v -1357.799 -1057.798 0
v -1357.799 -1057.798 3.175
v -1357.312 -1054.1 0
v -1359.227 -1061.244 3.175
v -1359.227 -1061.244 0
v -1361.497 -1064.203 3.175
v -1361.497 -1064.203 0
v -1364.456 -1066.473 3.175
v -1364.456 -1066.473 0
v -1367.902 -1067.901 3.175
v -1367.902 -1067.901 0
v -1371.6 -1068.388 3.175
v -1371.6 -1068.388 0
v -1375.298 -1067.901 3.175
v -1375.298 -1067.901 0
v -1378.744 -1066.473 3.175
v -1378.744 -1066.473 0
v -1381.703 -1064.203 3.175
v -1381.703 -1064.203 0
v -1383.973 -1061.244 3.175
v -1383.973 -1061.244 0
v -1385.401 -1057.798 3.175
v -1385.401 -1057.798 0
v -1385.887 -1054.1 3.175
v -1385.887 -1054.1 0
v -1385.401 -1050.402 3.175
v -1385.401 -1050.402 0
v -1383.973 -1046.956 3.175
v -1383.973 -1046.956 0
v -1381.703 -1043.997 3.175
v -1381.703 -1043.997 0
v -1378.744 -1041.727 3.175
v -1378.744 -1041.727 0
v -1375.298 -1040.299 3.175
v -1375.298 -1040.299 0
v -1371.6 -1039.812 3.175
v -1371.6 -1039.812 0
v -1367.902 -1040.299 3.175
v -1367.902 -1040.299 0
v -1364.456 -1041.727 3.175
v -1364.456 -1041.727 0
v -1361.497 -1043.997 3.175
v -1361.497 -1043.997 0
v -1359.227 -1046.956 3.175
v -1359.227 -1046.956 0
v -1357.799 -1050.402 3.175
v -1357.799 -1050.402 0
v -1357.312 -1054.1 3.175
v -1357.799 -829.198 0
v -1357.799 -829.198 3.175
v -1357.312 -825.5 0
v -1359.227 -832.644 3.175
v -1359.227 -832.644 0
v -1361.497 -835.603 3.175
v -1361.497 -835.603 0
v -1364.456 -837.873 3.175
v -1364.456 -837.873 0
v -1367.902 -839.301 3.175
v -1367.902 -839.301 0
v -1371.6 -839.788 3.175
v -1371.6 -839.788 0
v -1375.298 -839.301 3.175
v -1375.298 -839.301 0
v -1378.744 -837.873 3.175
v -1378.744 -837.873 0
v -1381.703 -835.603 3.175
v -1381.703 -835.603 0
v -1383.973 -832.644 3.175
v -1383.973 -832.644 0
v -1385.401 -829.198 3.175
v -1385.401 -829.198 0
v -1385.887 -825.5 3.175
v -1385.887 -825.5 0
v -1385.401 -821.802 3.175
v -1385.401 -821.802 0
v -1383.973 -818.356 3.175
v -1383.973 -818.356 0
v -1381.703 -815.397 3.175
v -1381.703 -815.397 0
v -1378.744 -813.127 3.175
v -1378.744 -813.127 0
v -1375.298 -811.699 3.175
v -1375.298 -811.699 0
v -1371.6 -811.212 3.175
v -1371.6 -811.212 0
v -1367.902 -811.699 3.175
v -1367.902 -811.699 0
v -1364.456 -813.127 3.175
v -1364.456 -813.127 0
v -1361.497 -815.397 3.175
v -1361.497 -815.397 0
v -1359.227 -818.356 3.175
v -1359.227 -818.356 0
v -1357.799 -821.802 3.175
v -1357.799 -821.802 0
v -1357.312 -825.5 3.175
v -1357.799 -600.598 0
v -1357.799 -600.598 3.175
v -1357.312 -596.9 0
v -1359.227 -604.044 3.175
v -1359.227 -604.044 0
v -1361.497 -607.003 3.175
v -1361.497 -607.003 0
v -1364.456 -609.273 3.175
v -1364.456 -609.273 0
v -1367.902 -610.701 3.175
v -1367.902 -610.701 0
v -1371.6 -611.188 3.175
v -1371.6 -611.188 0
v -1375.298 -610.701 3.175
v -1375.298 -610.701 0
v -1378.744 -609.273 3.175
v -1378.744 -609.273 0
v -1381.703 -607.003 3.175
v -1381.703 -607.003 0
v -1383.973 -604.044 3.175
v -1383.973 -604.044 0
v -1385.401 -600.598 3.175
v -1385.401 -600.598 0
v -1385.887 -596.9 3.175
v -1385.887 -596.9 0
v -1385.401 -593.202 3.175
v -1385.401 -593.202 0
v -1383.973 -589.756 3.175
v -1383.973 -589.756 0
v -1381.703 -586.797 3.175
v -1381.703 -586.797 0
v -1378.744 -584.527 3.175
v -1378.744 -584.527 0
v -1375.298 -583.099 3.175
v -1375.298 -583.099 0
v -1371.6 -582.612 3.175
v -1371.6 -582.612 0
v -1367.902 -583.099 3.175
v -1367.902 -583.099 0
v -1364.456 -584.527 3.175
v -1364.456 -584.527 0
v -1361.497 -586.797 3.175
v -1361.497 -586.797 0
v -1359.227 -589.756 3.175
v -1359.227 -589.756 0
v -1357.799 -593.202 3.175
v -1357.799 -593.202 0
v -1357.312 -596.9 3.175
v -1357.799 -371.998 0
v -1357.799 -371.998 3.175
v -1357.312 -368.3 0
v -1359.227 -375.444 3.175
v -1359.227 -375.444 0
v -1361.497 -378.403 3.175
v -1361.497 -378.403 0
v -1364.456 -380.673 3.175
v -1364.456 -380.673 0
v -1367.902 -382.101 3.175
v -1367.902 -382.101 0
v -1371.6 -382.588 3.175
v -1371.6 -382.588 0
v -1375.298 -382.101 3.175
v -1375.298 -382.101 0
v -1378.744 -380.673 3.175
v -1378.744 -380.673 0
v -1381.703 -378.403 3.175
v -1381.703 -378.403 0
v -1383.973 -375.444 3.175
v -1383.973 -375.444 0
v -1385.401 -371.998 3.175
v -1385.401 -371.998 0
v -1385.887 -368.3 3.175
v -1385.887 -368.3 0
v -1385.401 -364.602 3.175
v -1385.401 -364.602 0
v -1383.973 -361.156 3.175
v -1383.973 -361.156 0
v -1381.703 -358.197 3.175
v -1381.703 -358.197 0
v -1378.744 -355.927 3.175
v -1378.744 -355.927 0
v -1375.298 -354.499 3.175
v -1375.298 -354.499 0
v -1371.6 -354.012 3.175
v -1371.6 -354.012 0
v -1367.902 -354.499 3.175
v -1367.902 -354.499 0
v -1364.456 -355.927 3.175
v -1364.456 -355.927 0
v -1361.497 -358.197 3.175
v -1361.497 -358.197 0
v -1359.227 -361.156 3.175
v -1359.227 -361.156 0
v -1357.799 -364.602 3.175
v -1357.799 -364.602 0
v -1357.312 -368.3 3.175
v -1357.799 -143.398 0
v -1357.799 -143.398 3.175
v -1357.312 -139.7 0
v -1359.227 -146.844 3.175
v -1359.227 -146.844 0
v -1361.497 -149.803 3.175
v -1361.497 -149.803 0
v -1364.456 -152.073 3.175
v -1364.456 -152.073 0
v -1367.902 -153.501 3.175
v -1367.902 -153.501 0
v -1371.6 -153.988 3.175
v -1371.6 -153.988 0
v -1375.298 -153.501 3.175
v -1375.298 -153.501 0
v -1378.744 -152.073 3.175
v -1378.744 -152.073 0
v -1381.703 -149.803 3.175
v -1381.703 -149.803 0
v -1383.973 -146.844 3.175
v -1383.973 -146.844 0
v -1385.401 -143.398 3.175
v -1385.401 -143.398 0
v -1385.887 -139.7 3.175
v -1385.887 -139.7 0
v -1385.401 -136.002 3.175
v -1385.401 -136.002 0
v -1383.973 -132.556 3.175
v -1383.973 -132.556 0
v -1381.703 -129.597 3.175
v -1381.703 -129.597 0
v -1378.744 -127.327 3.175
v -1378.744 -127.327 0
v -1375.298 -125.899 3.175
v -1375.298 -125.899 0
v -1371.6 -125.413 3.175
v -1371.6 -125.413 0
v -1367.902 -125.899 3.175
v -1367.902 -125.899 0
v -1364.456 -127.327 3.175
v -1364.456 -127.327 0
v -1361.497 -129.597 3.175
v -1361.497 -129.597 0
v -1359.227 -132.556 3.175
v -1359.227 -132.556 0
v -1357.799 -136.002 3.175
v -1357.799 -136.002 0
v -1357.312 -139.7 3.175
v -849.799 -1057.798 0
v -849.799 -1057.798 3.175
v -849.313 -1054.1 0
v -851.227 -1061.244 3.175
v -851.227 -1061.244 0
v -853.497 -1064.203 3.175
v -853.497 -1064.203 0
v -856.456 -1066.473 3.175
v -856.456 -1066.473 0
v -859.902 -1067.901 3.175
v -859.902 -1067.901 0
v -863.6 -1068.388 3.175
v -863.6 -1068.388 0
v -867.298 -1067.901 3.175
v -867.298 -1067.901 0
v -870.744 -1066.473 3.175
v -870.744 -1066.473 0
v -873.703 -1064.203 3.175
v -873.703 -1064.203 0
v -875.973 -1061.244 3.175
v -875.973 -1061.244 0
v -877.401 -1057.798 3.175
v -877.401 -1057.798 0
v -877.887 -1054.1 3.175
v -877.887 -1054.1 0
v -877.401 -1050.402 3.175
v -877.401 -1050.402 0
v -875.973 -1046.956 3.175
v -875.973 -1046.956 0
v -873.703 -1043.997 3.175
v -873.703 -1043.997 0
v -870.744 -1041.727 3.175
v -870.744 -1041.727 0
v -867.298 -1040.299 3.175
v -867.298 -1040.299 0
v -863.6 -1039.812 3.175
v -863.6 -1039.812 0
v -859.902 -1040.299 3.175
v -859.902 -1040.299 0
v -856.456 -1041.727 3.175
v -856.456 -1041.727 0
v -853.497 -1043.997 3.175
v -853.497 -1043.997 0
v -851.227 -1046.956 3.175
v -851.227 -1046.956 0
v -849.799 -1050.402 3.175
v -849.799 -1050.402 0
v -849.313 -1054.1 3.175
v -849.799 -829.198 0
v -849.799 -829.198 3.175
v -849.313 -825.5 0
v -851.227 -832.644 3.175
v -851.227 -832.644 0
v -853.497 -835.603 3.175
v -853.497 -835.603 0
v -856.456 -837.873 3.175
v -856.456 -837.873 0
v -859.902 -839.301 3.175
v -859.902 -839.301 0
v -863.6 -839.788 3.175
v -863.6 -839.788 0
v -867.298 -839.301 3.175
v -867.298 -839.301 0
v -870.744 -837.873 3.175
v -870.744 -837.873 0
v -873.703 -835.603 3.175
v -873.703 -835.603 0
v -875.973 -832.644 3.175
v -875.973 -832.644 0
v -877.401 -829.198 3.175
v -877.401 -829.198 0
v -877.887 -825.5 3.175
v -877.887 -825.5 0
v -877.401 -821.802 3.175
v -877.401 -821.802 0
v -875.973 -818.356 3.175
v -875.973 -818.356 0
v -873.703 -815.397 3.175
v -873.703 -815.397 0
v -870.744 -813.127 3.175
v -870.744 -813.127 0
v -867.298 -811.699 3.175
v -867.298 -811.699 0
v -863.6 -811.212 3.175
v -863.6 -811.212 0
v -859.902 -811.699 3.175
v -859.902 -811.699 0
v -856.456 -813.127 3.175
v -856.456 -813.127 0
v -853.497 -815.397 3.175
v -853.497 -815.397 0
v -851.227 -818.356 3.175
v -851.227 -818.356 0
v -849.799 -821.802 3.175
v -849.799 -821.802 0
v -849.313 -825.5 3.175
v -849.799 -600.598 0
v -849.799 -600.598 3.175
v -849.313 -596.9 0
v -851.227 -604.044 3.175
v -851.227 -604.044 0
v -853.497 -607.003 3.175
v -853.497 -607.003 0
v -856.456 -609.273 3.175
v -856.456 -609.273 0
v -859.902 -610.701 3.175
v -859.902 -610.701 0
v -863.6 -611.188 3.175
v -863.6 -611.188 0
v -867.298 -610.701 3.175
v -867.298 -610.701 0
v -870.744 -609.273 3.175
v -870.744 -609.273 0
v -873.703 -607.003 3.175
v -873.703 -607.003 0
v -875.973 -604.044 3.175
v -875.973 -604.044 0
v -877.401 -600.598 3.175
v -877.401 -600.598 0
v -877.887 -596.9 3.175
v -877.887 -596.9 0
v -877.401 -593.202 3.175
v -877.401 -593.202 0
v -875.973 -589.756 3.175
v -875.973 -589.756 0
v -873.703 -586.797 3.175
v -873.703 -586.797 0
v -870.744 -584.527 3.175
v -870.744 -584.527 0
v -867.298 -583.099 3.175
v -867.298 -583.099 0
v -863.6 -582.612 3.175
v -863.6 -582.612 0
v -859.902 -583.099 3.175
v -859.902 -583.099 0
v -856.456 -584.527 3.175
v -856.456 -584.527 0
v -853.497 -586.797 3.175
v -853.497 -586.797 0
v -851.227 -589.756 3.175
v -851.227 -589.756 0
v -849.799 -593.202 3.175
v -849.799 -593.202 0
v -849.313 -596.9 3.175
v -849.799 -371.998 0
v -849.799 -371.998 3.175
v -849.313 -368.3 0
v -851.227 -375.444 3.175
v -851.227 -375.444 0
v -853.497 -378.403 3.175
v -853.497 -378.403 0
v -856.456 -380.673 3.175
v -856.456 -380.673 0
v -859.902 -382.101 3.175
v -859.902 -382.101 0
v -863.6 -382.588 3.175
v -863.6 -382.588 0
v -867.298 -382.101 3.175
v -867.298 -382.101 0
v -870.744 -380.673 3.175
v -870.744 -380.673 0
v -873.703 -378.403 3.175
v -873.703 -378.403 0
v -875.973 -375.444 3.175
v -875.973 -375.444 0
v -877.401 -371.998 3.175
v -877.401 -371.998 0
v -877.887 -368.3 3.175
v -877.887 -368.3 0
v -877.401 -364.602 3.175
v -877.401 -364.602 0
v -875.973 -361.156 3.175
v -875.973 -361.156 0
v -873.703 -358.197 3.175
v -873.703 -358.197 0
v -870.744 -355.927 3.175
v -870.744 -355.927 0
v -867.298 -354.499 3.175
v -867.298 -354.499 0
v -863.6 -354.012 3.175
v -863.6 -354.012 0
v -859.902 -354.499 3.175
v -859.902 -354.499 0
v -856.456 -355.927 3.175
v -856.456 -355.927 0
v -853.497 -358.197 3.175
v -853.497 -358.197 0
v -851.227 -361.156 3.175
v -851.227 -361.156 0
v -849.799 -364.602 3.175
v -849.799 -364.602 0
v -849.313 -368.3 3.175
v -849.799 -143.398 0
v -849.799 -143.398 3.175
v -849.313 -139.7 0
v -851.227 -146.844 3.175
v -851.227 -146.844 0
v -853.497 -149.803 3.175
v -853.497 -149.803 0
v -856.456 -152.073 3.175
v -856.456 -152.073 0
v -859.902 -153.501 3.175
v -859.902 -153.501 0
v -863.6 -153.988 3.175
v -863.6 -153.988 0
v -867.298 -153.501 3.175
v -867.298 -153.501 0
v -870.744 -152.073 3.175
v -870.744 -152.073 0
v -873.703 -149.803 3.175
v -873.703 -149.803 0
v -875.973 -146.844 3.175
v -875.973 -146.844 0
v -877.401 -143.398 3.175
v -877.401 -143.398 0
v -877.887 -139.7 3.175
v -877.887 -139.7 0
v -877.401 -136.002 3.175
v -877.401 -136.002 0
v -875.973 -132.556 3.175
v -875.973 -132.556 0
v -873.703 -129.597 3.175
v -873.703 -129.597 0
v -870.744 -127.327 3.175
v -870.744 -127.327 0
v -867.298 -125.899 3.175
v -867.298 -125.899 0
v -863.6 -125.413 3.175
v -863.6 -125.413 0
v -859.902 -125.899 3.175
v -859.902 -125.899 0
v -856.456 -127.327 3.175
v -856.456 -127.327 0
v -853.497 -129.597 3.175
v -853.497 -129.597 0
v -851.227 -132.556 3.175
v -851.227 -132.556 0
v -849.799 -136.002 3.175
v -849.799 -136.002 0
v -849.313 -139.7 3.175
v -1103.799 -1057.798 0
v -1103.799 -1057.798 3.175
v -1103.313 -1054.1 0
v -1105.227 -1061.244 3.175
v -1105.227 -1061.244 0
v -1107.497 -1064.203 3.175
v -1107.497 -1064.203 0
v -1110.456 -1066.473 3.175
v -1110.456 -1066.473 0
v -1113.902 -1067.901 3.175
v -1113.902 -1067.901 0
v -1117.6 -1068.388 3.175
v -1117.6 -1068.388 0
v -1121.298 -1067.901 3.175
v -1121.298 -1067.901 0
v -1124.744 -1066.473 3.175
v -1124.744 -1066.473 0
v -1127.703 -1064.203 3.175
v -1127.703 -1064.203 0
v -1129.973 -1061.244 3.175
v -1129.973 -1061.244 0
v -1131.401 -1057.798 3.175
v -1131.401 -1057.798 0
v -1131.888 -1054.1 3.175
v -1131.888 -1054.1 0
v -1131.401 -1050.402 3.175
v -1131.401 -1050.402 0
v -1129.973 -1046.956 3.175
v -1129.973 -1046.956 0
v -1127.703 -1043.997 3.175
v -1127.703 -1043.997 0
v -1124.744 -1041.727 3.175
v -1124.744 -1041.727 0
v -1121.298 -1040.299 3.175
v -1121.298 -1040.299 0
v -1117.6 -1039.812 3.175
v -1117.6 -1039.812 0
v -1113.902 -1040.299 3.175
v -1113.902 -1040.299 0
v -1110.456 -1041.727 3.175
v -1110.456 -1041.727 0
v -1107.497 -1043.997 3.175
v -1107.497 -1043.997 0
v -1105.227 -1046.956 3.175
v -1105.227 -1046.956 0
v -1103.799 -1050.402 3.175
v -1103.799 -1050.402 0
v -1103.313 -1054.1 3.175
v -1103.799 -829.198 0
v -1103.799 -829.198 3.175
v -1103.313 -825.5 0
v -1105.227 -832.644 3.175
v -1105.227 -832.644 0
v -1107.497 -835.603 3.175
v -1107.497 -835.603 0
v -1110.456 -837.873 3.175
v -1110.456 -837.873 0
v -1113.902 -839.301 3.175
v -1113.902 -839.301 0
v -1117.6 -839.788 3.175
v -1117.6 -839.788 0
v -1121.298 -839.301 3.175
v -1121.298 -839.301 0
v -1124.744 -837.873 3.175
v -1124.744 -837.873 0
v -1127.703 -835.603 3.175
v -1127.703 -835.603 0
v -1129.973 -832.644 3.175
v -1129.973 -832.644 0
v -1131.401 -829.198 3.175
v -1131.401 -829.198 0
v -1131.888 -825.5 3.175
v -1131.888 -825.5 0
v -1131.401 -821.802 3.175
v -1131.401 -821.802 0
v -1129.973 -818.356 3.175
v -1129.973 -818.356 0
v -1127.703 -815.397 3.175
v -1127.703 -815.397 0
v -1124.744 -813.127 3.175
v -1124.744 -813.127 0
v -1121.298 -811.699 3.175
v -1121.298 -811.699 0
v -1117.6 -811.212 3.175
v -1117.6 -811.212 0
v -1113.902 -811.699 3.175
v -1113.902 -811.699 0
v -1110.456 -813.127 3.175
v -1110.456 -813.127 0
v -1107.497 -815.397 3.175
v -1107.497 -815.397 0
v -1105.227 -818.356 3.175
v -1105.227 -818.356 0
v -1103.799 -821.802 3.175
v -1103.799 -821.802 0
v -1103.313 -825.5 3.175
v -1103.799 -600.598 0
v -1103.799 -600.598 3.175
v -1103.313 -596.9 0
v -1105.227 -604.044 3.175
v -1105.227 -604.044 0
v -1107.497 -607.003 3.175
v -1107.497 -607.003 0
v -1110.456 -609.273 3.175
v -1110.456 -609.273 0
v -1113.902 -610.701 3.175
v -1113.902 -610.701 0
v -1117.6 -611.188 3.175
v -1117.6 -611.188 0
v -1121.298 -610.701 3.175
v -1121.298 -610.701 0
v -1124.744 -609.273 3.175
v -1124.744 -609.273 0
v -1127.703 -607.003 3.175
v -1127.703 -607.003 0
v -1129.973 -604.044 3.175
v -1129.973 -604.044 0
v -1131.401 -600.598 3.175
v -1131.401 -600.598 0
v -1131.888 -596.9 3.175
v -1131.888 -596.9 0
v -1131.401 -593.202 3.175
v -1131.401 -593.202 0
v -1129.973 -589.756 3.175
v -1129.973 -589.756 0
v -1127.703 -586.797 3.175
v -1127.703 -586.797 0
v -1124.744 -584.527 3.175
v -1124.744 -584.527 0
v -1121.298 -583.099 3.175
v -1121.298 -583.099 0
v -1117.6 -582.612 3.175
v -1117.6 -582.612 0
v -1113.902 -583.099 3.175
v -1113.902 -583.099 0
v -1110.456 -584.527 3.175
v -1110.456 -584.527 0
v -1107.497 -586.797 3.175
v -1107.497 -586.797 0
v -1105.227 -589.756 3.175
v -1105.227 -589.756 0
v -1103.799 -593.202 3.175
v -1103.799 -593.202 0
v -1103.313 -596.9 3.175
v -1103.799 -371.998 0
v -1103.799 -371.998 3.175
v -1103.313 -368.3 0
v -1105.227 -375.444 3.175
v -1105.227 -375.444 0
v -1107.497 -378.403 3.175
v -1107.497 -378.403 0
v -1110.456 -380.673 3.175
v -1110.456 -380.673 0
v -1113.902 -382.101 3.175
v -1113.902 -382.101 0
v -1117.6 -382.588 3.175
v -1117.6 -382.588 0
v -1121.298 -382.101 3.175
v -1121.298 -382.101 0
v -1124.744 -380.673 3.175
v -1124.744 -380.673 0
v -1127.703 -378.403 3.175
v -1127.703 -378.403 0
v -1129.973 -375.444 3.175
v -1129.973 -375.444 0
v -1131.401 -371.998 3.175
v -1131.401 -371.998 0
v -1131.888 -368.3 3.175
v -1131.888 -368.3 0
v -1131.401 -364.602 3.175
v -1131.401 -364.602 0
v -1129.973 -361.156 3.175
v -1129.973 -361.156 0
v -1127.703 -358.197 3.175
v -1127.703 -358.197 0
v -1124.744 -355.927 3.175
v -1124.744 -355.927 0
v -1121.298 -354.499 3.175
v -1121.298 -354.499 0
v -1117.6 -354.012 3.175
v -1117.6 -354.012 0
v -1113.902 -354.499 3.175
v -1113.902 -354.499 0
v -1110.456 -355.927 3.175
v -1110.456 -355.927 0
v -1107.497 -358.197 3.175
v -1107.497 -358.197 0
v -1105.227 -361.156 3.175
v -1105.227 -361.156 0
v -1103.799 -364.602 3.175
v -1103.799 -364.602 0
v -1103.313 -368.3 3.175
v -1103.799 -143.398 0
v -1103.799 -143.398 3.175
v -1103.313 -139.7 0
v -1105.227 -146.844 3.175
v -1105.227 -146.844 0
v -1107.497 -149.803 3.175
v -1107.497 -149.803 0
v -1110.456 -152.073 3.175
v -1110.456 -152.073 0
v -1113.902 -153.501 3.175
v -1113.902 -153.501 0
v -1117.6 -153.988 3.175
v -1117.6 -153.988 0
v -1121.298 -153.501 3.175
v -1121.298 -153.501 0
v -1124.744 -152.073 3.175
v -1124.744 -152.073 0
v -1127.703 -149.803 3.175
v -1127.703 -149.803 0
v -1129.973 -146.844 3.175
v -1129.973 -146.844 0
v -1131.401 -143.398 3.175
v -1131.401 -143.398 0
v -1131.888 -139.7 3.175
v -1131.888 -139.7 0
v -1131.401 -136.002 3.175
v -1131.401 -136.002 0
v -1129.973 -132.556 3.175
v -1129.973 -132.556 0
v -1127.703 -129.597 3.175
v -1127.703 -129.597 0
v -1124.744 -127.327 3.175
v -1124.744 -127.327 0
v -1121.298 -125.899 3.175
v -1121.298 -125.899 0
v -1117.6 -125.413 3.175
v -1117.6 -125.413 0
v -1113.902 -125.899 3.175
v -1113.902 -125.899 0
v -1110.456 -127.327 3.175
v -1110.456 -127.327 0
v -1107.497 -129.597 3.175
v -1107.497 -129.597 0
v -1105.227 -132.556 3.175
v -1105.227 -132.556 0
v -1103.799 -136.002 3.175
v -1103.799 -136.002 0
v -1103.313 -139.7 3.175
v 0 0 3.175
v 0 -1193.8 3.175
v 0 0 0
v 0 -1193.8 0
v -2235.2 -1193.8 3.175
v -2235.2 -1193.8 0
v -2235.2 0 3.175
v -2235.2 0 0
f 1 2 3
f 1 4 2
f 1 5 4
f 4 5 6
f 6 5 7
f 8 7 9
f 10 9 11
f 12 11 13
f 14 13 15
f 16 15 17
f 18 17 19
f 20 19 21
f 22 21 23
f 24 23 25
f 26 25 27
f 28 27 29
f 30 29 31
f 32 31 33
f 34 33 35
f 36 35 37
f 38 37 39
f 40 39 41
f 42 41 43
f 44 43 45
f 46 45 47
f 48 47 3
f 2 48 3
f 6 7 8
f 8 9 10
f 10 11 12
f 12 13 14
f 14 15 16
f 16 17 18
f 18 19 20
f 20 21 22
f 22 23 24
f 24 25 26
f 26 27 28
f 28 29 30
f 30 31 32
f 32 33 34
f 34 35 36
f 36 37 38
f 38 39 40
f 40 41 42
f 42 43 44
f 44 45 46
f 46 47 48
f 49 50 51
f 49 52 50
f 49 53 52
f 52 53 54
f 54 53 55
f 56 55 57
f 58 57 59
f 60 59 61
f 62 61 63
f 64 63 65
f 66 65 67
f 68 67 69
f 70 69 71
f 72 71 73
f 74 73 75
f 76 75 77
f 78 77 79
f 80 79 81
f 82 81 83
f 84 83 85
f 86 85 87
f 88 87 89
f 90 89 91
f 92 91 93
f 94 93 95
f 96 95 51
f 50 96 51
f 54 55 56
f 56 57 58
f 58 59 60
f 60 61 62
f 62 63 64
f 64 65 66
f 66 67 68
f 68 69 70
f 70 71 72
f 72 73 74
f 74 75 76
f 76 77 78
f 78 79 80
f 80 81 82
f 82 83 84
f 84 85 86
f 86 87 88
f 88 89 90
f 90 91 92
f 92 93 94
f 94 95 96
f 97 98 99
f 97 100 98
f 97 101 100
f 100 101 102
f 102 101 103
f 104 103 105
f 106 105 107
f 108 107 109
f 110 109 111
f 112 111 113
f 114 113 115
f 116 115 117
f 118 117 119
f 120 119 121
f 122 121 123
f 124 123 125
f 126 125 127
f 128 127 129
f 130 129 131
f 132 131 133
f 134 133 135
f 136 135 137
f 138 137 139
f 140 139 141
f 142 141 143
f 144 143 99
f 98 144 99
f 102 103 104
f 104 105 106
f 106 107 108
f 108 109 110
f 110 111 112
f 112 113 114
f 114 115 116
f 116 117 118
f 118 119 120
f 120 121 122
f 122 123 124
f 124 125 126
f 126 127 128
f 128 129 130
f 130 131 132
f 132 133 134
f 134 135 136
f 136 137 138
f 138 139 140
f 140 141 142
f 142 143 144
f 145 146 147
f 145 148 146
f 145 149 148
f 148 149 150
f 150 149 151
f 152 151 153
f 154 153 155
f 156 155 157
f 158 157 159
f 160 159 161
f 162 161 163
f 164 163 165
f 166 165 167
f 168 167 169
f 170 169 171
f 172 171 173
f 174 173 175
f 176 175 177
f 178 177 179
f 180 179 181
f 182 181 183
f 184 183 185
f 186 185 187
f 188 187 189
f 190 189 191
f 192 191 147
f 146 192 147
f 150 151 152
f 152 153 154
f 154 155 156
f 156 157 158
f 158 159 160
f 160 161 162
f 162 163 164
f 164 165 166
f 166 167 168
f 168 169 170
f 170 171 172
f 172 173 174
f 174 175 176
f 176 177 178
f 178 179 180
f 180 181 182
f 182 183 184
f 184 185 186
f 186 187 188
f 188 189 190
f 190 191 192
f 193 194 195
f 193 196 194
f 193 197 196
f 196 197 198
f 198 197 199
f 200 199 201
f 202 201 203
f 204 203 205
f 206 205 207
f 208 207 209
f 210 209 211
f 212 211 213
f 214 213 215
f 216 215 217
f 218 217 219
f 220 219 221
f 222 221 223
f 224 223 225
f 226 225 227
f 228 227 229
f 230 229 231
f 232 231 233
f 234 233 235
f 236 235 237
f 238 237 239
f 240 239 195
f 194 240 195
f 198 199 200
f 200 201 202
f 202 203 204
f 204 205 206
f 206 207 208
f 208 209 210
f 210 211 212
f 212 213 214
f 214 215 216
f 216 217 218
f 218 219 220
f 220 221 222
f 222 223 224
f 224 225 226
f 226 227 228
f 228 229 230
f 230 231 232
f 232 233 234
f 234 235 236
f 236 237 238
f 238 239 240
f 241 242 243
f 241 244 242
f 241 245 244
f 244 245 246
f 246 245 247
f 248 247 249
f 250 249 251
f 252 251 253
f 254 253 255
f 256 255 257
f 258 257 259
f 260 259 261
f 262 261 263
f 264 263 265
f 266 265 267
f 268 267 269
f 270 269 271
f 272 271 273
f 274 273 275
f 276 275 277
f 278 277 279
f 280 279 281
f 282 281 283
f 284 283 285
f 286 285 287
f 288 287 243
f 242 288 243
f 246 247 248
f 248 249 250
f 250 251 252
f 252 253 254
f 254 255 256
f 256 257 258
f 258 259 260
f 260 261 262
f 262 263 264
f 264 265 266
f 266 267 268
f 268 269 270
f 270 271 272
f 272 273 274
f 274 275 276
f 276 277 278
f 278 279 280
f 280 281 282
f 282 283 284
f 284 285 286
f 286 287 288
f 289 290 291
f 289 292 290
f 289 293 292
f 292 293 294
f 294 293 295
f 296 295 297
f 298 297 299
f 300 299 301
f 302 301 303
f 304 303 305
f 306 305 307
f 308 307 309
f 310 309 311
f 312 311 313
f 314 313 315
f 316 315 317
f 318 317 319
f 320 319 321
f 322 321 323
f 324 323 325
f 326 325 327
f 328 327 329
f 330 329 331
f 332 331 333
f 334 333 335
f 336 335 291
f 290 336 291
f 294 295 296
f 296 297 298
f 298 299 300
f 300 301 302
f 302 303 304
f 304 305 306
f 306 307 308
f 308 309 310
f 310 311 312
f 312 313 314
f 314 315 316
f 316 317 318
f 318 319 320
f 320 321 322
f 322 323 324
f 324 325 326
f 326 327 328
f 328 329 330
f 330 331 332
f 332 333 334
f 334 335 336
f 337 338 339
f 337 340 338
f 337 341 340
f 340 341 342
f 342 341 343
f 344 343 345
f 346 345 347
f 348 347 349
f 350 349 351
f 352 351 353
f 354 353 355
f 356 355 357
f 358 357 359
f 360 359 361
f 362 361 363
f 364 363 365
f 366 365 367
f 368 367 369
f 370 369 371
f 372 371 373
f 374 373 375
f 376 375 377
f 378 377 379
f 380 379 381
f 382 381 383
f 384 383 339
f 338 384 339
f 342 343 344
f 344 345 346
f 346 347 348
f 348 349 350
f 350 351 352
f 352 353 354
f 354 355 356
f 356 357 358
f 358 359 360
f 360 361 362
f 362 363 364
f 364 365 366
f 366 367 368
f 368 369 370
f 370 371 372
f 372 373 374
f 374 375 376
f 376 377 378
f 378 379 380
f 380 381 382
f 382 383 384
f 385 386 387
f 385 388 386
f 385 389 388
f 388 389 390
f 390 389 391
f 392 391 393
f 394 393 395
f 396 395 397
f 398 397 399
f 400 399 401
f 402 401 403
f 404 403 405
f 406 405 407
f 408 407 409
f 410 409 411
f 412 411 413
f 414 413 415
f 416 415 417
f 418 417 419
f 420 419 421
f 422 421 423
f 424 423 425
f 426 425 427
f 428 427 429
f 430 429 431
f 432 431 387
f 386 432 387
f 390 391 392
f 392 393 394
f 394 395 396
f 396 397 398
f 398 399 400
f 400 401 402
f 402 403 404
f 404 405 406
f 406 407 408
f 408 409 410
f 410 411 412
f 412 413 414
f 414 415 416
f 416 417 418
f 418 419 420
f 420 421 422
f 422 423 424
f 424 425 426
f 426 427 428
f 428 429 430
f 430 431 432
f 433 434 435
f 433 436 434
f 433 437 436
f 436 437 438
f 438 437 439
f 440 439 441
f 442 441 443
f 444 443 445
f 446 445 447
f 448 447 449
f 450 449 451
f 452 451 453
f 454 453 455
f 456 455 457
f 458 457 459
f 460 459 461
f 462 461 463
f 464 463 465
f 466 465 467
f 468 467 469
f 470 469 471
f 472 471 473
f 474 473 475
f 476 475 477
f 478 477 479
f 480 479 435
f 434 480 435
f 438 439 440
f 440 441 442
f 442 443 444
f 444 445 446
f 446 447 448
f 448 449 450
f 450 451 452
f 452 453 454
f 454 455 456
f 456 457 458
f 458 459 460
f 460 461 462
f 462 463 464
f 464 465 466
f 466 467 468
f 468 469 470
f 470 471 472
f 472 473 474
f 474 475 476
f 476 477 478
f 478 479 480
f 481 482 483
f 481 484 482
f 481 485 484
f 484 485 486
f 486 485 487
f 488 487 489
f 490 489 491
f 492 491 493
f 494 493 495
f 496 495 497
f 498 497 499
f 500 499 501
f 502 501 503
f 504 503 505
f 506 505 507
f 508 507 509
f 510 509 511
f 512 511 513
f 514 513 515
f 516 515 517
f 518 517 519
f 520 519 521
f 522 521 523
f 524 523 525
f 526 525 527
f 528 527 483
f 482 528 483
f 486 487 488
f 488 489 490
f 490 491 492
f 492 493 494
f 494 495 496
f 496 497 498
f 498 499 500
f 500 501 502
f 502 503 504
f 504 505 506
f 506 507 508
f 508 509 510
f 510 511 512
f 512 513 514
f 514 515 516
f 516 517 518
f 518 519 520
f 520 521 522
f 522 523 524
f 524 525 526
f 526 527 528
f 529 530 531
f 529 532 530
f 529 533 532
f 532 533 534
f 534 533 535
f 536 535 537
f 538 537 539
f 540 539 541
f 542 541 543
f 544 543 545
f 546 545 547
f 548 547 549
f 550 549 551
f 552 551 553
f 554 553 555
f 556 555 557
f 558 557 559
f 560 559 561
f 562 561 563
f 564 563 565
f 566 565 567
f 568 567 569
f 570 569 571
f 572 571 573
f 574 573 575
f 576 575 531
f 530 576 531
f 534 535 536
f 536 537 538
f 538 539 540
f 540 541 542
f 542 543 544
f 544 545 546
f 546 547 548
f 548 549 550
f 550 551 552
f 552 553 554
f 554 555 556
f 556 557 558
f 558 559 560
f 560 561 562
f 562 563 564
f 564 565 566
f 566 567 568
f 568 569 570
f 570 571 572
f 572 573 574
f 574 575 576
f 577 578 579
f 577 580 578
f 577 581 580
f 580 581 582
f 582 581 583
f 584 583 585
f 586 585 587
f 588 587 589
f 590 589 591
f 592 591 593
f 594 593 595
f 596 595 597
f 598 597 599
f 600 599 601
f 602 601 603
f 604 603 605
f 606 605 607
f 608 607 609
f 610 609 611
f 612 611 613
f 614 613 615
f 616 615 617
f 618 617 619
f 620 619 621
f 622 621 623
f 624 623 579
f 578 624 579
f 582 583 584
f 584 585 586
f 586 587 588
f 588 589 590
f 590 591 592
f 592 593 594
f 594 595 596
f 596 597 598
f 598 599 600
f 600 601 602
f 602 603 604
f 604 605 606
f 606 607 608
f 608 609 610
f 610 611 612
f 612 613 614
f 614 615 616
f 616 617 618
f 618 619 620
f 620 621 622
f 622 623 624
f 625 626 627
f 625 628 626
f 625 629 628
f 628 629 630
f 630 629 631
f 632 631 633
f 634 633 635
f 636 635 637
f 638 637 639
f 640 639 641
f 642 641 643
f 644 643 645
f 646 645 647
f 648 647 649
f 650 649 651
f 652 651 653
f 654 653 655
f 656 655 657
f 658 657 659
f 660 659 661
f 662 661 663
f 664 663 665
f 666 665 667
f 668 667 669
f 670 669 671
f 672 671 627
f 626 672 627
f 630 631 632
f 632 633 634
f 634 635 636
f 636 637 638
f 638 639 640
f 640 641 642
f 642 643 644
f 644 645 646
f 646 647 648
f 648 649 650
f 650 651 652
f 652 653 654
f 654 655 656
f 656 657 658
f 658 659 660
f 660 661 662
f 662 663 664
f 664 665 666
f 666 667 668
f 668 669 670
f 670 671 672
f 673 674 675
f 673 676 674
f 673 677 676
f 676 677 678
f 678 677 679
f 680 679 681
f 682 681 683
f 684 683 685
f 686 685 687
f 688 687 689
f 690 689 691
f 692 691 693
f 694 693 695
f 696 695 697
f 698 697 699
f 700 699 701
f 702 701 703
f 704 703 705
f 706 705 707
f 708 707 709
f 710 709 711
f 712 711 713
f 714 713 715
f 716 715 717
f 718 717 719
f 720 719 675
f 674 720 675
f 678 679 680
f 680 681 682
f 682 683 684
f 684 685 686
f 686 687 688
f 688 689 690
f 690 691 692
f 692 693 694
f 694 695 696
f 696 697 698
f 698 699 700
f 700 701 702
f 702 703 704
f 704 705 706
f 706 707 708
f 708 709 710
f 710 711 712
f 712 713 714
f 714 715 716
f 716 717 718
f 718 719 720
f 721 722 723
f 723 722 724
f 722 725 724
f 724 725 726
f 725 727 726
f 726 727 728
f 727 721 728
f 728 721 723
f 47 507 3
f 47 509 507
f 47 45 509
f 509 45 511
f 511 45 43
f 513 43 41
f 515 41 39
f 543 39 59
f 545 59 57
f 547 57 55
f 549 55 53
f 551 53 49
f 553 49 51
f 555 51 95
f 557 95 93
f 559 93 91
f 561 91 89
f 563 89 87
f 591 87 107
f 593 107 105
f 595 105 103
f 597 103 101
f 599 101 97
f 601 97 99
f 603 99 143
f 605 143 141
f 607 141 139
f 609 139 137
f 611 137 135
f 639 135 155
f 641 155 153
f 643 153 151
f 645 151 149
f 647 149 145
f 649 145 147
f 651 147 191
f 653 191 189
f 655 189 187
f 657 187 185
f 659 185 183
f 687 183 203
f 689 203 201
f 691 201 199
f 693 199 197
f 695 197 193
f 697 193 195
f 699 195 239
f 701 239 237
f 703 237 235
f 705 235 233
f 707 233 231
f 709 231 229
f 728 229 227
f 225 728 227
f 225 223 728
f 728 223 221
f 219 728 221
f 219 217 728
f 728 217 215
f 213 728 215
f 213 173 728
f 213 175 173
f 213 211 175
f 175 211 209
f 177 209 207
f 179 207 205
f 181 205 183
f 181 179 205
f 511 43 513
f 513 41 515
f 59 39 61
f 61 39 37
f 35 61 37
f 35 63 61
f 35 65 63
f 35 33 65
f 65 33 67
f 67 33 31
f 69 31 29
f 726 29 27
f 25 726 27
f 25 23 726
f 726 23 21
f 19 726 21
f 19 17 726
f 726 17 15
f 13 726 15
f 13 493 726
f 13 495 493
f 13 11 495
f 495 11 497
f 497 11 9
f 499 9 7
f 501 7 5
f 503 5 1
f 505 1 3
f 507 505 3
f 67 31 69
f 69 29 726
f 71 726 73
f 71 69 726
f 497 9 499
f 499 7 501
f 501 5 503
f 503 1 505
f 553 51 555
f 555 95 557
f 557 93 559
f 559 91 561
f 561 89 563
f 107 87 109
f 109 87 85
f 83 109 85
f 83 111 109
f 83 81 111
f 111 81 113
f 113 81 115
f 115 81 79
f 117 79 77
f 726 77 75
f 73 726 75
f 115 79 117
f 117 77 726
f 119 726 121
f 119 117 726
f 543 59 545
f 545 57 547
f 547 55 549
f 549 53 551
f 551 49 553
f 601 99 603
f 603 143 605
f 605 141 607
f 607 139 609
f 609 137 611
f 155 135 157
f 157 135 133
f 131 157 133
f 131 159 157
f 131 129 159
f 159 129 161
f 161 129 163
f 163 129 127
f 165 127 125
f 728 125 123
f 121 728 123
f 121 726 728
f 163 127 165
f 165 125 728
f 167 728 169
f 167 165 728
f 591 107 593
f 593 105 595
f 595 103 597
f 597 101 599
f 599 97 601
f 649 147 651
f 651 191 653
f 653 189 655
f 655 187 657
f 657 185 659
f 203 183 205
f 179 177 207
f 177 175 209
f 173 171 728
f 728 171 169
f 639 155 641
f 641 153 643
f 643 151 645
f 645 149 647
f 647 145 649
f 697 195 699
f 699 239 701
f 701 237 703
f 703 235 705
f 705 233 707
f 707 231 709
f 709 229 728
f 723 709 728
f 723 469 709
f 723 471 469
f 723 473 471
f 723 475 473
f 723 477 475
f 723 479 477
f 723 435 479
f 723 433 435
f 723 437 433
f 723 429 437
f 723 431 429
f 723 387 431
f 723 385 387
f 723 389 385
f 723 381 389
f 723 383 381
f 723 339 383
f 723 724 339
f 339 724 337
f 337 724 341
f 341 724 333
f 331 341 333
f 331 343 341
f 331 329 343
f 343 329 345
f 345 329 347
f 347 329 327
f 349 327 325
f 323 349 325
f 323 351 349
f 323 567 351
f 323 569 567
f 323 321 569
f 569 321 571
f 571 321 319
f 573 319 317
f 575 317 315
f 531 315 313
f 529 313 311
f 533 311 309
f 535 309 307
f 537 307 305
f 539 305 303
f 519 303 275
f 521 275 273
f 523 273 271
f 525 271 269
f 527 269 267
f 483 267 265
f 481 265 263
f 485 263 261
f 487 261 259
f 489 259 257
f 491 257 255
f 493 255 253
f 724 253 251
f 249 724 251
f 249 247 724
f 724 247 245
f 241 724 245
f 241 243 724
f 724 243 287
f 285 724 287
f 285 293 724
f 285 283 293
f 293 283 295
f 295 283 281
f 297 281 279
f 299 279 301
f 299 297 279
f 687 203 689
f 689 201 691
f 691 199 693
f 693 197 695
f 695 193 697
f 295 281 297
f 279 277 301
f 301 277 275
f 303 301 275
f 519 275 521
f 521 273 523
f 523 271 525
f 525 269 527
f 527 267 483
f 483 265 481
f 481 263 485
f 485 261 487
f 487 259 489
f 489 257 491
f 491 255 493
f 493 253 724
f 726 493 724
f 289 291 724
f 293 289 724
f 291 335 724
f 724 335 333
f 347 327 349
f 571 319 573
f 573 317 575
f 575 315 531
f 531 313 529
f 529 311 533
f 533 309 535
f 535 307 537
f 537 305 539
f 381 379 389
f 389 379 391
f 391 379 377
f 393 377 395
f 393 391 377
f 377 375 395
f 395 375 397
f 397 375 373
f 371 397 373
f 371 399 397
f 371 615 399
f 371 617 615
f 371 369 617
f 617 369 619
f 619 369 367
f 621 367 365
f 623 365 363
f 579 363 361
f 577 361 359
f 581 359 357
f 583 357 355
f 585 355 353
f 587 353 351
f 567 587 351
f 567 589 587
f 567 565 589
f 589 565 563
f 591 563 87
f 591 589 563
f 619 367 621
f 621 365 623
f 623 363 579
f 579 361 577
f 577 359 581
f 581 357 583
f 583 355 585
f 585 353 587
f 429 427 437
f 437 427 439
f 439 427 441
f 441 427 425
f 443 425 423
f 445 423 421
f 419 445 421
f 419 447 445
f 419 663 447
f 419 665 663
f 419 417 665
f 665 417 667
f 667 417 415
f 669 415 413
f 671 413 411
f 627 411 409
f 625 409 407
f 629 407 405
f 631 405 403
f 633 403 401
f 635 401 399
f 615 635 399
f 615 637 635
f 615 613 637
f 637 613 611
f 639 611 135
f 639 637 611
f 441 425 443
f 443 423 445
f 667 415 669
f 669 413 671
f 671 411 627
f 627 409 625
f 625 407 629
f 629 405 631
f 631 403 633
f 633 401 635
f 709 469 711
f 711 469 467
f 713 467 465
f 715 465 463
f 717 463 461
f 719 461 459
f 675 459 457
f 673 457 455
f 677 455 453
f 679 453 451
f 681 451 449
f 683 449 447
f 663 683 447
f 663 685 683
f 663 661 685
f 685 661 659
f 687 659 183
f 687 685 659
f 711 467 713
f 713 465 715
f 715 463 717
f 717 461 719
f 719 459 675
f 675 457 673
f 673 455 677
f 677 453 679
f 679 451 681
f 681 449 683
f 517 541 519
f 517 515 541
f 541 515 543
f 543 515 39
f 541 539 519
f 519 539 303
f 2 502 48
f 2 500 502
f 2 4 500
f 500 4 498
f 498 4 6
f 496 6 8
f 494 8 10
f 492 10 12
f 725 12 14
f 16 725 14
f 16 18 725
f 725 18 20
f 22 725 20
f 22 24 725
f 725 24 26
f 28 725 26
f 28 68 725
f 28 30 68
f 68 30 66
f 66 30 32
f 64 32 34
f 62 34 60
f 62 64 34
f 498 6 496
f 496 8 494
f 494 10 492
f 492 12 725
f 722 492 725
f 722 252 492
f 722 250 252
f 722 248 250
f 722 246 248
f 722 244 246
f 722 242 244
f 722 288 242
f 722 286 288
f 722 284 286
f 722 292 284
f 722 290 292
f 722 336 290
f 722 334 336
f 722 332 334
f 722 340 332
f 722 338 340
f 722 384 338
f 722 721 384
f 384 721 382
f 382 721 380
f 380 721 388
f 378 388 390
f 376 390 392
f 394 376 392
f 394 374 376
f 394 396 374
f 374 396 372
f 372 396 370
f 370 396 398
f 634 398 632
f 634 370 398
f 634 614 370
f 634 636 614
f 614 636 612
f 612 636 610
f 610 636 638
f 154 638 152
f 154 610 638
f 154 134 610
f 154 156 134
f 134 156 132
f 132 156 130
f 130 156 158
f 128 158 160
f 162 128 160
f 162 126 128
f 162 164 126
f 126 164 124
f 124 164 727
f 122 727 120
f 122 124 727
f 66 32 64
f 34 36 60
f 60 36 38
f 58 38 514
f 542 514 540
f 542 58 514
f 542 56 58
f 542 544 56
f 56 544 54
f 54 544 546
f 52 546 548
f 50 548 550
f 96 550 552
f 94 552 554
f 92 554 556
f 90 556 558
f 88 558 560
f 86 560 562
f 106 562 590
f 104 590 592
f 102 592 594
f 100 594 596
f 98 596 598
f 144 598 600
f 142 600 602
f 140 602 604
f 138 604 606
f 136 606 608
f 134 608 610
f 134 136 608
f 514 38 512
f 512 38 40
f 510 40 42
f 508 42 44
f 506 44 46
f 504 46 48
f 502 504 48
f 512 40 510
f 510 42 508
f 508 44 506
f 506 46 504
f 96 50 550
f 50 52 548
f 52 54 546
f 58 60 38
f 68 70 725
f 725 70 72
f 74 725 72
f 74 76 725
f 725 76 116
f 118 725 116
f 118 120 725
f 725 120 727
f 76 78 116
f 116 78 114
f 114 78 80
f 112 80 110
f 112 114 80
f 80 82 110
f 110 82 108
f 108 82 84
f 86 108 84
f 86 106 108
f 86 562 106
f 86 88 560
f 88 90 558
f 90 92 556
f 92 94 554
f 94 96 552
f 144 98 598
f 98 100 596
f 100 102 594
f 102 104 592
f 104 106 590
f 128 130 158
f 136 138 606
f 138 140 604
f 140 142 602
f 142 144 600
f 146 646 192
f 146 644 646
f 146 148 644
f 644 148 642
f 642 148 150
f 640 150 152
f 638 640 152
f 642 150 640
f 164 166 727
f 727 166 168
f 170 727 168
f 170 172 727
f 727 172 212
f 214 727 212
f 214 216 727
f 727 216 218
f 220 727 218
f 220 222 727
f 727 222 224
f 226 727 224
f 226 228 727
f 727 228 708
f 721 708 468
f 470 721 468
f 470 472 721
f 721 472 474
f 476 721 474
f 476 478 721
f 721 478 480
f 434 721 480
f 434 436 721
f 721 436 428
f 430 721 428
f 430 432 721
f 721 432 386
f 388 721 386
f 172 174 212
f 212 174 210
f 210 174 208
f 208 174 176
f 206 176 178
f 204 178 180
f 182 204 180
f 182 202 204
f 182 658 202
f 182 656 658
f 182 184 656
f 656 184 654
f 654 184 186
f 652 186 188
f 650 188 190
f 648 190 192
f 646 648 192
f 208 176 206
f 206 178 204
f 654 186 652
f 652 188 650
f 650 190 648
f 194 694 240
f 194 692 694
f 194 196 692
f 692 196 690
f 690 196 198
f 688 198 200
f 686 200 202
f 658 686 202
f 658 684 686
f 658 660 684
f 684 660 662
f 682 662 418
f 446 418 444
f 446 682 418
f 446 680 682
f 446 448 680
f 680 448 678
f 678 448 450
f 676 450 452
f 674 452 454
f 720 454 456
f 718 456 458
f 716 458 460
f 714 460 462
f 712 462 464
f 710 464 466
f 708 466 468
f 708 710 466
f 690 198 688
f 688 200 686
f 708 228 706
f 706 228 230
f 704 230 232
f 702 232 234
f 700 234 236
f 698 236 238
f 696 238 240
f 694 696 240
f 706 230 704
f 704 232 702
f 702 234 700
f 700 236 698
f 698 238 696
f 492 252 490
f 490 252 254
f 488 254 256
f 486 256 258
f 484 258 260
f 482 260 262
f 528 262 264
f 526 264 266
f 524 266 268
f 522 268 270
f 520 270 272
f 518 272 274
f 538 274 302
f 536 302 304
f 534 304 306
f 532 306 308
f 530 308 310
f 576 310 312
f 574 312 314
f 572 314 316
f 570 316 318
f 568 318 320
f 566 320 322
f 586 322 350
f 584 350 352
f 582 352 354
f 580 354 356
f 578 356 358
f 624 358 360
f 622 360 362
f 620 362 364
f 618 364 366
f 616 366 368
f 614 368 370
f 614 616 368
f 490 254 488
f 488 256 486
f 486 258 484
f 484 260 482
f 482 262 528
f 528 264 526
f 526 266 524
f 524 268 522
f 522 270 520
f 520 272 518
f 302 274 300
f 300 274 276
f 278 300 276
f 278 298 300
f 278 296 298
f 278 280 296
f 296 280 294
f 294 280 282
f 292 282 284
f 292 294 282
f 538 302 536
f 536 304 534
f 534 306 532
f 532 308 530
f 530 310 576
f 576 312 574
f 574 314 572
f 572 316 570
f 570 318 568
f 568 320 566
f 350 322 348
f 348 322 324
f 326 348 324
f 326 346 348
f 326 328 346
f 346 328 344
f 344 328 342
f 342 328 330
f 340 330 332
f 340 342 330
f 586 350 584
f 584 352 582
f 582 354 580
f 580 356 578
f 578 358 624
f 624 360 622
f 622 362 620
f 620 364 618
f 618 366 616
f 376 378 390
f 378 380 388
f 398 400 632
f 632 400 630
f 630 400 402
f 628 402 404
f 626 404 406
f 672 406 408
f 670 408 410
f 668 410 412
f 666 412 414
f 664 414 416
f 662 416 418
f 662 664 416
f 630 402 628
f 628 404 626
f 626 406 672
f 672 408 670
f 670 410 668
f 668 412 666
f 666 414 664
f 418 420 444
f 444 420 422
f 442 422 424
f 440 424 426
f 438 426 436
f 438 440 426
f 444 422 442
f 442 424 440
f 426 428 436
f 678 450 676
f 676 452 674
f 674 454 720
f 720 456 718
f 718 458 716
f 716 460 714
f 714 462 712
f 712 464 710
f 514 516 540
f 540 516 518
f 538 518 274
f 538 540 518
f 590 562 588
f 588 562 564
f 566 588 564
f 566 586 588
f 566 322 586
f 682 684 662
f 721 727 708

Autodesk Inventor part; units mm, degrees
ref_plane "YZ Plane" through (0, 0, 0) normal (1, 0, 0) x (0, 1, 0)
ref_plane "XZ Plane" through (0, 0, 0) normal (0, 1, 0) x (-1, 0, 0)
ref_plane "XY Plane" through (0, 0, 0) normal (0, 0, 1) x (1, 0, 0)
sketch "Sketch1" plane through (0, 0, 0) normal (0, 0, 1) x (1, 0, 0)
  line L0 (0, 0) -> (-2235.2, 0)
  line L1 (-2235.2, 0) -> (-2235.2, -1193.8)
  line L2 (-2235.2, -1193.8) -> (0, -1193.8)
  line L3 (0, -1193.8) -> (0, 0)
  dimension "d0" = 2235.2
  dimension "d1" = 1193.8
extrude "Extrusion1" add sketch "Sketch1" along normal blind 3.175
sketch "Sketch2" plane through (0, 0, 3.175) normal (0, 0, 1) x (1, 0, 0)
  line L0 (-2235.2, 0) -> (0, 0) projected
  line L1 (-2235.2, -1193.8) -> (-2235.2, 0) projected
  circle A0 centre (-1117.6, -139.7) radius 14.2875
  circle A1 centre (-1117.6, -139.7) radius 101.6
  circle A2 centre (-1117.6, -368.3) radius 14.2875
  circle A3 centre (-1117.6, -368.3) radius 101.6
  circle A4 centre (-1117.6, -596.9) radius 14.2875
  circle A5 centre (-1117.6, -596.9) radius 101.6
  circle A6 centre (-1117.6, -825.5) radius 14.2875
  circle A7 centre (-1117.6, -825.5) radius 101.6
  circle A8 centre (-1117.6, -1054.1) radius 14.2875
  circle A9 centre (-1117.6, -1054.1) radius 101.6
  dimension "d4" = 28.575
  dimension "d5" = 203.2
  dimension "d6" = 1117.6
  dimension "d11" = 139.7
  dimension "d14" = 228.6
extrude "Extrusion2" cut sketch "Sketch2" against normal blind 3.175 contours A0 | A2 | A4 | A6 | A8
pattern_linear "Rectangular Pattern1" count 2 spacing 254 along (1, 0, 0) of "Extrusion2"
pattern_linear "Rectangular Pattern2" count 2 spacing 254 along (-1, 0, 0) of "Extrusion2"
properties part number "GE-12095"
